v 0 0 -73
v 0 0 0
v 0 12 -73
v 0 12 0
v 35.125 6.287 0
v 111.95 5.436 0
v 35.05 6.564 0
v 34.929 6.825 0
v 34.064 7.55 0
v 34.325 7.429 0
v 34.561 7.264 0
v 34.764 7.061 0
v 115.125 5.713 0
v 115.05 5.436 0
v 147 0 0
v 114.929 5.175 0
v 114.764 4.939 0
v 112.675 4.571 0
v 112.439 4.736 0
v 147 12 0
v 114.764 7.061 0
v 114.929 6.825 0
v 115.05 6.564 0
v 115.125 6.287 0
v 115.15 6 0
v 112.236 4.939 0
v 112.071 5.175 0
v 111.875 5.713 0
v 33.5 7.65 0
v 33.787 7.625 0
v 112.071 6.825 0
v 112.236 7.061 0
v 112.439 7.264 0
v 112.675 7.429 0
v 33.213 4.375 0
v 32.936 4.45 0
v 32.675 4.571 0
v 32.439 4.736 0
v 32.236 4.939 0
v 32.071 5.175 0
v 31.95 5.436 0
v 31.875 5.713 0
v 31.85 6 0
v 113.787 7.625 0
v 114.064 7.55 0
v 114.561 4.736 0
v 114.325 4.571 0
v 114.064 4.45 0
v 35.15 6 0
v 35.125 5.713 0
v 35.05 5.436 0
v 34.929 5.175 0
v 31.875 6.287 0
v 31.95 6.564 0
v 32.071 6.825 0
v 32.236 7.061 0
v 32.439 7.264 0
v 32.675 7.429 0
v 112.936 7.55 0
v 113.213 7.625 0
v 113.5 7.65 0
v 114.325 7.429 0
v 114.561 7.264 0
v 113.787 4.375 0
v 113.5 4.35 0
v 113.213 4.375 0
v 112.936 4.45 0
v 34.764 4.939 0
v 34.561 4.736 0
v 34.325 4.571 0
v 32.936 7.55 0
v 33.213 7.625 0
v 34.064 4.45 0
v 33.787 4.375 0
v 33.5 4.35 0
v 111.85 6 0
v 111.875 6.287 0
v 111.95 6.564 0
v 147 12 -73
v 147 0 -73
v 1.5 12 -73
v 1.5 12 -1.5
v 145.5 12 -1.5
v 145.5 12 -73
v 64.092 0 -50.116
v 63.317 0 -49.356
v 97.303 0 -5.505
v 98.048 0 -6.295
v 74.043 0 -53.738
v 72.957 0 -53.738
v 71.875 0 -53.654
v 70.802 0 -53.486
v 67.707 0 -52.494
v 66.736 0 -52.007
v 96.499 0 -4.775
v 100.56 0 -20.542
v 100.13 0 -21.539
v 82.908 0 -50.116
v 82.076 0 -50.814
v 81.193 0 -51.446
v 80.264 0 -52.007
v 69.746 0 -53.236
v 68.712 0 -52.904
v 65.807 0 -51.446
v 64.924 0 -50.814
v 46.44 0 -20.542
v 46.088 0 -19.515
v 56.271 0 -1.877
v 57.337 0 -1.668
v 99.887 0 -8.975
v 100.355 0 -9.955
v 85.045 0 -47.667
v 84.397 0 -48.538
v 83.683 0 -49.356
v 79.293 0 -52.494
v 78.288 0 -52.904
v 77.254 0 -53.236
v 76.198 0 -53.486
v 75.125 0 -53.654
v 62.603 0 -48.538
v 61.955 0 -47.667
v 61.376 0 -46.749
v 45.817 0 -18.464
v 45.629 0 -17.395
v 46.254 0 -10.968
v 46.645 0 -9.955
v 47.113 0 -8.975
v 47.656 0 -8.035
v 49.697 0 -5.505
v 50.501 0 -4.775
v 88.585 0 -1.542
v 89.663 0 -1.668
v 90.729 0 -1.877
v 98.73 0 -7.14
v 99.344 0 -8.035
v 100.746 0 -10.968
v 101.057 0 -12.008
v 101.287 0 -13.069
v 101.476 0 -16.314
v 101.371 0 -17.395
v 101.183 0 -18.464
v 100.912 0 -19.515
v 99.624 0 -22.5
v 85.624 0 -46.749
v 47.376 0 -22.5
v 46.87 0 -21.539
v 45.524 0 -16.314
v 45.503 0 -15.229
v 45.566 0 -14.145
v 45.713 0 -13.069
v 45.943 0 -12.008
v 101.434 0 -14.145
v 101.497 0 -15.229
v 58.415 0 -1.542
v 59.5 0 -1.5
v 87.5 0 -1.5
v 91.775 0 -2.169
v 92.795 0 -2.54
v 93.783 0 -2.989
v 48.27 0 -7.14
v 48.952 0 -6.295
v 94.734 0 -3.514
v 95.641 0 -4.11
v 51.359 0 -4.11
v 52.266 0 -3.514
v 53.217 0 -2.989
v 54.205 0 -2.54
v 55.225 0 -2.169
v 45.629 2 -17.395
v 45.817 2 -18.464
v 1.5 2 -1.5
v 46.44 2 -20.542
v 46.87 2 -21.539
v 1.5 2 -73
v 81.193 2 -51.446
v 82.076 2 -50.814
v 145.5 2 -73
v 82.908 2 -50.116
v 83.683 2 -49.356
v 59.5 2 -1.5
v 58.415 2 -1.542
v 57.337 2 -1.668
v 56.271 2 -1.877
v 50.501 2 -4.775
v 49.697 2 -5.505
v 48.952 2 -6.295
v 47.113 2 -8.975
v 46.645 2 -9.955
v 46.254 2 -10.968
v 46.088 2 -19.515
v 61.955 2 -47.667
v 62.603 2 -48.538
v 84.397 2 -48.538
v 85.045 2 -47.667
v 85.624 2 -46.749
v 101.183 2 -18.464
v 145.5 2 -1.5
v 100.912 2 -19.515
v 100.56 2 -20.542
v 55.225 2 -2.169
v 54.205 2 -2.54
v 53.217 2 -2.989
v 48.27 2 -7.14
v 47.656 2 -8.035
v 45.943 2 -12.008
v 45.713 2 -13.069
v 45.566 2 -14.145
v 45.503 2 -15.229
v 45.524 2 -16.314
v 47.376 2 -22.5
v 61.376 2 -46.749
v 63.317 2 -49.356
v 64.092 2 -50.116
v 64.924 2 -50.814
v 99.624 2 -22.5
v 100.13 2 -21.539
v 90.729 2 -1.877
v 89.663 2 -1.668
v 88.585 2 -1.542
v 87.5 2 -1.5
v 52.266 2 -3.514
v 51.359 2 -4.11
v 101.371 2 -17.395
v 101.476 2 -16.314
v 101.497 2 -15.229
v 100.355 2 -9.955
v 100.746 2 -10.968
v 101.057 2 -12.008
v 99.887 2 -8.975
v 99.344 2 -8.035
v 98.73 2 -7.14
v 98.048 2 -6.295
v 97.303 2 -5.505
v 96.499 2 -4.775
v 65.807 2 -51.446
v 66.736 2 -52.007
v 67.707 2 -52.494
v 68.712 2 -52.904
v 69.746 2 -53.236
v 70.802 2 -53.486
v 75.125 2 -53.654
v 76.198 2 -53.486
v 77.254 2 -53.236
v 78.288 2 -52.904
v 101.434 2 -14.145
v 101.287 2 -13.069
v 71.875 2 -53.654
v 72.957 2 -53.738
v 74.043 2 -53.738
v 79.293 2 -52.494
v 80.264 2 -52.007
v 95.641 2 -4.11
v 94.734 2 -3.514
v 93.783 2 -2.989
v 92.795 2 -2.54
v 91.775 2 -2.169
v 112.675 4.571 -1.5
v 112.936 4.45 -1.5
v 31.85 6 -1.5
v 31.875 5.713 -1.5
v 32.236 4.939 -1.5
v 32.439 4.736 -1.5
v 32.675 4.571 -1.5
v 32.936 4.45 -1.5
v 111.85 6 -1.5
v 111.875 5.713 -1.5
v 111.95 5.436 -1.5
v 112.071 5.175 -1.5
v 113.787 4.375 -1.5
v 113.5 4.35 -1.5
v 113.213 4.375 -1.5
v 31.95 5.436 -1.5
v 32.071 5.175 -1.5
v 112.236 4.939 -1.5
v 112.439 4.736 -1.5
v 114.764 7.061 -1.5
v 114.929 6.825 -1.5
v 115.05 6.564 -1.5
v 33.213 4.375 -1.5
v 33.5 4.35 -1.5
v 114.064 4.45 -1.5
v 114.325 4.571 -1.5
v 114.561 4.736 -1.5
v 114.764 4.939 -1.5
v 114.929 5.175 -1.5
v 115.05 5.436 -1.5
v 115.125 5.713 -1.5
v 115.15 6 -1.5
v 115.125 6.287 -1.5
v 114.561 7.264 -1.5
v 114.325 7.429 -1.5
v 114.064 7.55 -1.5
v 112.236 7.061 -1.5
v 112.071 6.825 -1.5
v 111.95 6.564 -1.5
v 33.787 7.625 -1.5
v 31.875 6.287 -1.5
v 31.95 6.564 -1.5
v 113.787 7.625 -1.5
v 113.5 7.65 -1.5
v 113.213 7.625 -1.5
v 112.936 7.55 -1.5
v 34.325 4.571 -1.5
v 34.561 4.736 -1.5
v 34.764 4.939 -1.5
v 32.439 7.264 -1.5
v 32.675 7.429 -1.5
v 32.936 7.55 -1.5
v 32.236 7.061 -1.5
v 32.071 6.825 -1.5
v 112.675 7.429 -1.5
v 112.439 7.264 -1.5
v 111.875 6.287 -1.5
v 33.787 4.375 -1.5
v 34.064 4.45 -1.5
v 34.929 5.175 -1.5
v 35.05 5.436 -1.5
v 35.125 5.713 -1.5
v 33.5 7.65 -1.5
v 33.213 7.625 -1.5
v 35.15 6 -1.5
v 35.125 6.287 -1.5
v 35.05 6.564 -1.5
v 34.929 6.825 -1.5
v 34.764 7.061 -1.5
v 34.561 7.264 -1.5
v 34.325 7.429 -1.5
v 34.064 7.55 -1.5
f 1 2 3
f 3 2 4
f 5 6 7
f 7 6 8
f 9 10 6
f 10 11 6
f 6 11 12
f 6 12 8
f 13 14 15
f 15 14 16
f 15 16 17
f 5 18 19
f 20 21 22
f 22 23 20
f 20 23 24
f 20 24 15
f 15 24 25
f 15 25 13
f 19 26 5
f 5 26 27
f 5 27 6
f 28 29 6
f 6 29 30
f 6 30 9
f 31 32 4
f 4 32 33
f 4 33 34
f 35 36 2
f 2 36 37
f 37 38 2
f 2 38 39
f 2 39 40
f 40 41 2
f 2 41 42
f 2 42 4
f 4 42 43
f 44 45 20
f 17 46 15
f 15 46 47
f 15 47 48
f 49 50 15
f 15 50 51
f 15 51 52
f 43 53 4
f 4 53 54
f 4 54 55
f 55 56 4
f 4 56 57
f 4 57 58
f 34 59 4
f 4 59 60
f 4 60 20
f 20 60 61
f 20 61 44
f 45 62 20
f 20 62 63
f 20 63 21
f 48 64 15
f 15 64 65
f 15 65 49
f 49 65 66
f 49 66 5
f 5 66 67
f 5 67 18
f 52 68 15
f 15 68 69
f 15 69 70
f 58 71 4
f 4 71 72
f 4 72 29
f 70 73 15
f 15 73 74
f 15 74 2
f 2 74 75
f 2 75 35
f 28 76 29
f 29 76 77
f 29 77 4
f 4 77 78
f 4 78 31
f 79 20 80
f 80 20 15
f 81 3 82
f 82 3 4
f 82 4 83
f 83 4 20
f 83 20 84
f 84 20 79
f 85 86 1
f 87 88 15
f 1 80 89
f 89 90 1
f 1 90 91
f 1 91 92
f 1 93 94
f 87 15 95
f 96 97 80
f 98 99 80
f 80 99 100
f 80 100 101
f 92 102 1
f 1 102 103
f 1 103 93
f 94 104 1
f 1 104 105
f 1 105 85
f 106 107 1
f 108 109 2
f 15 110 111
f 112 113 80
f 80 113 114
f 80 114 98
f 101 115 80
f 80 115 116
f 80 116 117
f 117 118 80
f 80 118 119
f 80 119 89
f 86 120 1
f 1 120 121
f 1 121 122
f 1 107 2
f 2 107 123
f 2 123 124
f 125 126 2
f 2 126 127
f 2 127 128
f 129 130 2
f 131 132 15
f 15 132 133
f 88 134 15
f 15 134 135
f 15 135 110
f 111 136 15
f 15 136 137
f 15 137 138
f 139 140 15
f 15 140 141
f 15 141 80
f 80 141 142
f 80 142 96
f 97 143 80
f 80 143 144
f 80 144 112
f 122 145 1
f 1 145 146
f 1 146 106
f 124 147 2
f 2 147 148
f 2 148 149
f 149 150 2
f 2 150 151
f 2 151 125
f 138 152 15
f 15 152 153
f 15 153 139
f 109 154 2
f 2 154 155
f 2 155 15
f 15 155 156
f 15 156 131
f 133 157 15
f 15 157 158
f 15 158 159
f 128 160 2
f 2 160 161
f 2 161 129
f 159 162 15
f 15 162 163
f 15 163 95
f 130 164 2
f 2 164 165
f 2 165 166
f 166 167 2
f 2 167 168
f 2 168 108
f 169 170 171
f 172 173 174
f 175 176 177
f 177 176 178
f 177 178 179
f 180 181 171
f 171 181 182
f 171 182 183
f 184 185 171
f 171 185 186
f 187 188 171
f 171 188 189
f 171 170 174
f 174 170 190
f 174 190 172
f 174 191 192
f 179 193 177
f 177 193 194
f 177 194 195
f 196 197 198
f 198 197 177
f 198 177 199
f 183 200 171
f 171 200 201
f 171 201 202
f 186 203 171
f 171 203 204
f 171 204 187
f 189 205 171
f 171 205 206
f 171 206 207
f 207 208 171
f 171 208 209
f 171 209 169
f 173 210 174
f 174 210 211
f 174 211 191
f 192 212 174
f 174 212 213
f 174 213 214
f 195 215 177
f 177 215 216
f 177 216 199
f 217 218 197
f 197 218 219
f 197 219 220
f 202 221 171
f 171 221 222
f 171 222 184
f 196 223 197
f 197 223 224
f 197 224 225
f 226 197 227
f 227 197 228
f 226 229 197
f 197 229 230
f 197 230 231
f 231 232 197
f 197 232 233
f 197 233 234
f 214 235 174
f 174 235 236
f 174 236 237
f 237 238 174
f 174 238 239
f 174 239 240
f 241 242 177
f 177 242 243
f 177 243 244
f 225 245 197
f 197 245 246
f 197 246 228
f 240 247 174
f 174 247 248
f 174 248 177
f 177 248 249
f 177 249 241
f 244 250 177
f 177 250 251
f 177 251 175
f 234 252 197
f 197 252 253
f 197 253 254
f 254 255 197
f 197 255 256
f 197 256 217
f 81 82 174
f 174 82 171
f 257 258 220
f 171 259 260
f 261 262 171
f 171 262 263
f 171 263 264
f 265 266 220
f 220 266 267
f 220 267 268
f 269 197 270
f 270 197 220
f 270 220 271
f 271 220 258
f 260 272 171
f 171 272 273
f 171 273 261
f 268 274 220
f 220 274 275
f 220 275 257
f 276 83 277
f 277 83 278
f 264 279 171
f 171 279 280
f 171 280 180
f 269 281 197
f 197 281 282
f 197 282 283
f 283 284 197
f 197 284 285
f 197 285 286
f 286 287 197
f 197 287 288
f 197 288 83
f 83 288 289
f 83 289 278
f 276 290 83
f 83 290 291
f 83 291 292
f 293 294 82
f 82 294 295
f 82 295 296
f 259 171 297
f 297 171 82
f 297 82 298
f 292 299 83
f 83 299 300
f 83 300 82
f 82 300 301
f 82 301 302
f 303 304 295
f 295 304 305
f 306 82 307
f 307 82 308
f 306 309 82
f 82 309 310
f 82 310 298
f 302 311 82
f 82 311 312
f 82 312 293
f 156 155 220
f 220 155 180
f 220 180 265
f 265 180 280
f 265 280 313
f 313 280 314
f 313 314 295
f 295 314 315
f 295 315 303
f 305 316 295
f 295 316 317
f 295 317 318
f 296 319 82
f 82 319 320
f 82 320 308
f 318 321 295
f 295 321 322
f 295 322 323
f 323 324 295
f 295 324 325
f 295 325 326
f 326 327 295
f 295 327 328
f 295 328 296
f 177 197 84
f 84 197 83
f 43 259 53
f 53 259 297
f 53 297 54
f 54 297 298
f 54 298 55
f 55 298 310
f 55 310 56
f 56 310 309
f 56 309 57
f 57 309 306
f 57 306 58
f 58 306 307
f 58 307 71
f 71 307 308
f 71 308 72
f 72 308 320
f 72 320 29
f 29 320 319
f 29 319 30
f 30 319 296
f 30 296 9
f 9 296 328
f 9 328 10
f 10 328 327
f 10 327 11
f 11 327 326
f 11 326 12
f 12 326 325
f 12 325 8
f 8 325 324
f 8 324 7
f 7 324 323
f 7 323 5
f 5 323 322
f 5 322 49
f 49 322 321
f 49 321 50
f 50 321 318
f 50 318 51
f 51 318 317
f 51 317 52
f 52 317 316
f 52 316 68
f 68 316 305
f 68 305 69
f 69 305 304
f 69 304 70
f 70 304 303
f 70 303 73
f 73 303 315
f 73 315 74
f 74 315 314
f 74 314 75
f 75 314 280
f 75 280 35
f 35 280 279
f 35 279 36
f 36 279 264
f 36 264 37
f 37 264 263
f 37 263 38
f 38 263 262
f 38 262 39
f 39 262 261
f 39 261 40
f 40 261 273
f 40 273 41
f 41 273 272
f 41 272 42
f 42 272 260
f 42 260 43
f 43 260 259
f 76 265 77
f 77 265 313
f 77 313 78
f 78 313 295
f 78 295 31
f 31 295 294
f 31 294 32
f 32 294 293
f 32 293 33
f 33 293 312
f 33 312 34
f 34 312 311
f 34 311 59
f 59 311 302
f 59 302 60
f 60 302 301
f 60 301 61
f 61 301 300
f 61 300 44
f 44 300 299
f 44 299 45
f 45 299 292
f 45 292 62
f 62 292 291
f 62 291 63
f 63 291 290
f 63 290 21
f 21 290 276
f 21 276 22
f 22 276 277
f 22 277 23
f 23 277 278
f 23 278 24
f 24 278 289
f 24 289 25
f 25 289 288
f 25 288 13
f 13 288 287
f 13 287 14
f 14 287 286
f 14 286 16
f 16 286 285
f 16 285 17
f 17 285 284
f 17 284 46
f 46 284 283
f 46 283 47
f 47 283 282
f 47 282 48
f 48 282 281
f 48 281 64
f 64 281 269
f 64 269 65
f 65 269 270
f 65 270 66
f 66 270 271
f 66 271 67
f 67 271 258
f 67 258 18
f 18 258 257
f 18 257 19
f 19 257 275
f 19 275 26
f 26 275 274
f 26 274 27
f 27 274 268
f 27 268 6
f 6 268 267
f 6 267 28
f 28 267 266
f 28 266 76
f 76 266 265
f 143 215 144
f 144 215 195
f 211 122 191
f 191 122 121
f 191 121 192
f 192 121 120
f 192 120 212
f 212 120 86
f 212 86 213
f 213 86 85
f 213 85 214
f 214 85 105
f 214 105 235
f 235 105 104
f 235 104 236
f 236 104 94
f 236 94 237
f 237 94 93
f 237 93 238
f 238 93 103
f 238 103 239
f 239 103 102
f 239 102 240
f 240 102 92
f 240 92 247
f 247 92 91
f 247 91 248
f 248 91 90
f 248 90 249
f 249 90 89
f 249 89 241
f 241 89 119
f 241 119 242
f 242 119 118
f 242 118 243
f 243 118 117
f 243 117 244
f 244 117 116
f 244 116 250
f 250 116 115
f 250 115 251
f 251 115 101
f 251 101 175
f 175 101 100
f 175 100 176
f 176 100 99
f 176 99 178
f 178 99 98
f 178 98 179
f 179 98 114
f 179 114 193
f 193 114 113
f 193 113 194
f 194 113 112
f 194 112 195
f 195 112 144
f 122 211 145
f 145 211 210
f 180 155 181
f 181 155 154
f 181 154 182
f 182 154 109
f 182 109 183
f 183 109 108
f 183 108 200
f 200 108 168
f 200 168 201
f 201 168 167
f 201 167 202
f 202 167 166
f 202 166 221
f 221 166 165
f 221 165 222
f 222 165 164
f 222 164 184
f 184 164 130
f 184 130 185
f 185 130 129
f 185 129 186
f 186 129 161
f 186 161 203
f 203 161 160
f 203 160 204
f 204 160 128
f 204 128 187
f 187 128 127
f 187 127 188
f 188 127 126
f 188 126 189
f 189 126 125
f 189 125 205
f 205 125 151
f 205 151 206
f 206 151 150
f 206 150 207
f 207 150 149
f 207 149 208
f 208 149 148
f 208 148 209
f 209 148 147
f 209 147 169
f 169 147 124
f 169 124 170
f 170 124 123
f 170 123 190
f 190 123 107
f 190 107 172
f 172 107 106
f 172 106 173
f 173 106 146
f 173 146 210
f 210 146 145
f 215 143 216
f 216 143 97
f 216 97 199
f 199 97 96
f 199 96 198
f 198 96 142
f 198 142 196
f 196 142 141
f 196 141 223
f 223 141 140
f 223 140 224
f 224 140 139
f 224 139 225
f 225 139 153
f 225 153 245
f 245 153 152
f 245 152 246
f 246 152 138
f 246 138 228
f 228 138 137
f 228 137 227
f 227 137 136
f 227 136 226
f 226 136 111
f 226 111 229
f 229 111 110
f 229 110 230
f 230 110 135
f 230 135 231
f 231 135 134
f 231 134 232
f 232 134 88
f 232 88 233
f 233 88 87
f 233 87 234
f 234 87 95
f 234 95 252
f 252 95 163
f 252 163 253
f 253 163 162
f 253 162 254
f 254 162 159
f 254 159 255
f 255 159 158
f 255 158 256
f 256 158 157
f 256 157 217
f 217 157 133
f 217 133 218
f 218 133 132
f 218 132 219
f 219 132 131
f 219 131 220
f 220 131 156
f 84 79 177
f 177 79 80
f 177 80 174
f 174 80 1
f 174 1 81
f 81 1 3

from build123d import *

# Parameters (mm, degrees)
SKETCH_1_W          = 147
SKETCH_1_H          = 76
EXTRUDE_1_DEPTH     = 12
SKETCH_2_W          = 144
SKETCH_2_H          = 73
CUT_EXTRUDE_1_DEPTH = 10
SKETCH_3_R          = 1.65
CUT_EXTRUDE_2_DEPTH = 166.918654768
CUT_EXTRUDE_3_DEPTH = 10
SKETCH_6_W          = 147
SKETCH_6_H          = 3
CUT_EXTRUDE_4_DEPTH = 166.918654768


with BuildPart() as part:
    # 草图1 → 凸台-拉伸1 (new body)
    with BuildSketch(Plane(origin=(0, 0, 0), x_dir=(1, 0, 0), z_dir=(0, 1, 0))):
        with Locations((73.5, 38)):
            Rectangle(SKETCH_1_W, SKETCH_1_H)
    extrude(amount=EXTRUDE_1_DEPTH)

    # 草图2 → 切除-拉伸1 (cut)
    with BuildSketch(Plane(origin=(0, 12, 0), x_dir=(1, 0, 0), z_dir=(0, 1, 0))):
        with Locations((73.5, 38)):
            Rectangle(SKETCH_2_W, SKETCH_2_H)
    extrude(amount=-CUT_EXTRUDE_1_DEPTH, mode=Mode.SUBTRACT)

    # 草图3 → 切除-拉伸2 (cut, through all)
    with BuildSketch(Plane(origin=(0, 0, -76), x_dir=(-1, 0, 0), z_dir=(0, 0, -1))):
        with Locations((-113.5, 6)):
            Circle(SKETCH_3_R)
        with Locations((-33.5, 6)):
            Circle(SKETCH_3_R)
    extrude(amount=-CUT_EXTRUDE_2_DEPTH, mode=Mode.SUBTRACT)

    # 草图5 → 切除-拉伸3 (cut)
    with BuildSketch(Plane.XZ):
        with BuildLine():
            Line((61.375644347, -46.748711306), (47.375644347, -22.5))
            ThreePointArc((47.375644347, -22.5), (47.375644347, -8.5), (59.5, -1.5))
            Line((59.5, -1.5), (87.5, -1.5))
            ThreePointArc((87.5, -1.5), (99.624355653, -8.5), (99.624355653, -22.5))
            Line((99.624355653, -22.5), (85.624355653, -46.748711306))
            ThreePointArc((85.624355653, -46.748711306), (73.5, -53.748711306), (61.375644347, -46.748711306))
        make_face()
    extrude(amount=-CUT_EXTRUDE_3_DEPTH, mode=Mode.SUBTRACT)

    # 草图6 → 切除-拉伸4 (cut, through all)
    with BuildSketch(Plane(origin=(0, 12, 0), x_dir=(1, 0, 0), z_dir=(0, 1, 0))):
        with Locations((73.5, 74.5)):
            Rectangle(SKETCH_6_W, SKETCH_6_H)
    extrude(amount=-CUT_EXTRUDE_4_DEPTH, mode=Mode.SUBTRACT)


solid = part.part
